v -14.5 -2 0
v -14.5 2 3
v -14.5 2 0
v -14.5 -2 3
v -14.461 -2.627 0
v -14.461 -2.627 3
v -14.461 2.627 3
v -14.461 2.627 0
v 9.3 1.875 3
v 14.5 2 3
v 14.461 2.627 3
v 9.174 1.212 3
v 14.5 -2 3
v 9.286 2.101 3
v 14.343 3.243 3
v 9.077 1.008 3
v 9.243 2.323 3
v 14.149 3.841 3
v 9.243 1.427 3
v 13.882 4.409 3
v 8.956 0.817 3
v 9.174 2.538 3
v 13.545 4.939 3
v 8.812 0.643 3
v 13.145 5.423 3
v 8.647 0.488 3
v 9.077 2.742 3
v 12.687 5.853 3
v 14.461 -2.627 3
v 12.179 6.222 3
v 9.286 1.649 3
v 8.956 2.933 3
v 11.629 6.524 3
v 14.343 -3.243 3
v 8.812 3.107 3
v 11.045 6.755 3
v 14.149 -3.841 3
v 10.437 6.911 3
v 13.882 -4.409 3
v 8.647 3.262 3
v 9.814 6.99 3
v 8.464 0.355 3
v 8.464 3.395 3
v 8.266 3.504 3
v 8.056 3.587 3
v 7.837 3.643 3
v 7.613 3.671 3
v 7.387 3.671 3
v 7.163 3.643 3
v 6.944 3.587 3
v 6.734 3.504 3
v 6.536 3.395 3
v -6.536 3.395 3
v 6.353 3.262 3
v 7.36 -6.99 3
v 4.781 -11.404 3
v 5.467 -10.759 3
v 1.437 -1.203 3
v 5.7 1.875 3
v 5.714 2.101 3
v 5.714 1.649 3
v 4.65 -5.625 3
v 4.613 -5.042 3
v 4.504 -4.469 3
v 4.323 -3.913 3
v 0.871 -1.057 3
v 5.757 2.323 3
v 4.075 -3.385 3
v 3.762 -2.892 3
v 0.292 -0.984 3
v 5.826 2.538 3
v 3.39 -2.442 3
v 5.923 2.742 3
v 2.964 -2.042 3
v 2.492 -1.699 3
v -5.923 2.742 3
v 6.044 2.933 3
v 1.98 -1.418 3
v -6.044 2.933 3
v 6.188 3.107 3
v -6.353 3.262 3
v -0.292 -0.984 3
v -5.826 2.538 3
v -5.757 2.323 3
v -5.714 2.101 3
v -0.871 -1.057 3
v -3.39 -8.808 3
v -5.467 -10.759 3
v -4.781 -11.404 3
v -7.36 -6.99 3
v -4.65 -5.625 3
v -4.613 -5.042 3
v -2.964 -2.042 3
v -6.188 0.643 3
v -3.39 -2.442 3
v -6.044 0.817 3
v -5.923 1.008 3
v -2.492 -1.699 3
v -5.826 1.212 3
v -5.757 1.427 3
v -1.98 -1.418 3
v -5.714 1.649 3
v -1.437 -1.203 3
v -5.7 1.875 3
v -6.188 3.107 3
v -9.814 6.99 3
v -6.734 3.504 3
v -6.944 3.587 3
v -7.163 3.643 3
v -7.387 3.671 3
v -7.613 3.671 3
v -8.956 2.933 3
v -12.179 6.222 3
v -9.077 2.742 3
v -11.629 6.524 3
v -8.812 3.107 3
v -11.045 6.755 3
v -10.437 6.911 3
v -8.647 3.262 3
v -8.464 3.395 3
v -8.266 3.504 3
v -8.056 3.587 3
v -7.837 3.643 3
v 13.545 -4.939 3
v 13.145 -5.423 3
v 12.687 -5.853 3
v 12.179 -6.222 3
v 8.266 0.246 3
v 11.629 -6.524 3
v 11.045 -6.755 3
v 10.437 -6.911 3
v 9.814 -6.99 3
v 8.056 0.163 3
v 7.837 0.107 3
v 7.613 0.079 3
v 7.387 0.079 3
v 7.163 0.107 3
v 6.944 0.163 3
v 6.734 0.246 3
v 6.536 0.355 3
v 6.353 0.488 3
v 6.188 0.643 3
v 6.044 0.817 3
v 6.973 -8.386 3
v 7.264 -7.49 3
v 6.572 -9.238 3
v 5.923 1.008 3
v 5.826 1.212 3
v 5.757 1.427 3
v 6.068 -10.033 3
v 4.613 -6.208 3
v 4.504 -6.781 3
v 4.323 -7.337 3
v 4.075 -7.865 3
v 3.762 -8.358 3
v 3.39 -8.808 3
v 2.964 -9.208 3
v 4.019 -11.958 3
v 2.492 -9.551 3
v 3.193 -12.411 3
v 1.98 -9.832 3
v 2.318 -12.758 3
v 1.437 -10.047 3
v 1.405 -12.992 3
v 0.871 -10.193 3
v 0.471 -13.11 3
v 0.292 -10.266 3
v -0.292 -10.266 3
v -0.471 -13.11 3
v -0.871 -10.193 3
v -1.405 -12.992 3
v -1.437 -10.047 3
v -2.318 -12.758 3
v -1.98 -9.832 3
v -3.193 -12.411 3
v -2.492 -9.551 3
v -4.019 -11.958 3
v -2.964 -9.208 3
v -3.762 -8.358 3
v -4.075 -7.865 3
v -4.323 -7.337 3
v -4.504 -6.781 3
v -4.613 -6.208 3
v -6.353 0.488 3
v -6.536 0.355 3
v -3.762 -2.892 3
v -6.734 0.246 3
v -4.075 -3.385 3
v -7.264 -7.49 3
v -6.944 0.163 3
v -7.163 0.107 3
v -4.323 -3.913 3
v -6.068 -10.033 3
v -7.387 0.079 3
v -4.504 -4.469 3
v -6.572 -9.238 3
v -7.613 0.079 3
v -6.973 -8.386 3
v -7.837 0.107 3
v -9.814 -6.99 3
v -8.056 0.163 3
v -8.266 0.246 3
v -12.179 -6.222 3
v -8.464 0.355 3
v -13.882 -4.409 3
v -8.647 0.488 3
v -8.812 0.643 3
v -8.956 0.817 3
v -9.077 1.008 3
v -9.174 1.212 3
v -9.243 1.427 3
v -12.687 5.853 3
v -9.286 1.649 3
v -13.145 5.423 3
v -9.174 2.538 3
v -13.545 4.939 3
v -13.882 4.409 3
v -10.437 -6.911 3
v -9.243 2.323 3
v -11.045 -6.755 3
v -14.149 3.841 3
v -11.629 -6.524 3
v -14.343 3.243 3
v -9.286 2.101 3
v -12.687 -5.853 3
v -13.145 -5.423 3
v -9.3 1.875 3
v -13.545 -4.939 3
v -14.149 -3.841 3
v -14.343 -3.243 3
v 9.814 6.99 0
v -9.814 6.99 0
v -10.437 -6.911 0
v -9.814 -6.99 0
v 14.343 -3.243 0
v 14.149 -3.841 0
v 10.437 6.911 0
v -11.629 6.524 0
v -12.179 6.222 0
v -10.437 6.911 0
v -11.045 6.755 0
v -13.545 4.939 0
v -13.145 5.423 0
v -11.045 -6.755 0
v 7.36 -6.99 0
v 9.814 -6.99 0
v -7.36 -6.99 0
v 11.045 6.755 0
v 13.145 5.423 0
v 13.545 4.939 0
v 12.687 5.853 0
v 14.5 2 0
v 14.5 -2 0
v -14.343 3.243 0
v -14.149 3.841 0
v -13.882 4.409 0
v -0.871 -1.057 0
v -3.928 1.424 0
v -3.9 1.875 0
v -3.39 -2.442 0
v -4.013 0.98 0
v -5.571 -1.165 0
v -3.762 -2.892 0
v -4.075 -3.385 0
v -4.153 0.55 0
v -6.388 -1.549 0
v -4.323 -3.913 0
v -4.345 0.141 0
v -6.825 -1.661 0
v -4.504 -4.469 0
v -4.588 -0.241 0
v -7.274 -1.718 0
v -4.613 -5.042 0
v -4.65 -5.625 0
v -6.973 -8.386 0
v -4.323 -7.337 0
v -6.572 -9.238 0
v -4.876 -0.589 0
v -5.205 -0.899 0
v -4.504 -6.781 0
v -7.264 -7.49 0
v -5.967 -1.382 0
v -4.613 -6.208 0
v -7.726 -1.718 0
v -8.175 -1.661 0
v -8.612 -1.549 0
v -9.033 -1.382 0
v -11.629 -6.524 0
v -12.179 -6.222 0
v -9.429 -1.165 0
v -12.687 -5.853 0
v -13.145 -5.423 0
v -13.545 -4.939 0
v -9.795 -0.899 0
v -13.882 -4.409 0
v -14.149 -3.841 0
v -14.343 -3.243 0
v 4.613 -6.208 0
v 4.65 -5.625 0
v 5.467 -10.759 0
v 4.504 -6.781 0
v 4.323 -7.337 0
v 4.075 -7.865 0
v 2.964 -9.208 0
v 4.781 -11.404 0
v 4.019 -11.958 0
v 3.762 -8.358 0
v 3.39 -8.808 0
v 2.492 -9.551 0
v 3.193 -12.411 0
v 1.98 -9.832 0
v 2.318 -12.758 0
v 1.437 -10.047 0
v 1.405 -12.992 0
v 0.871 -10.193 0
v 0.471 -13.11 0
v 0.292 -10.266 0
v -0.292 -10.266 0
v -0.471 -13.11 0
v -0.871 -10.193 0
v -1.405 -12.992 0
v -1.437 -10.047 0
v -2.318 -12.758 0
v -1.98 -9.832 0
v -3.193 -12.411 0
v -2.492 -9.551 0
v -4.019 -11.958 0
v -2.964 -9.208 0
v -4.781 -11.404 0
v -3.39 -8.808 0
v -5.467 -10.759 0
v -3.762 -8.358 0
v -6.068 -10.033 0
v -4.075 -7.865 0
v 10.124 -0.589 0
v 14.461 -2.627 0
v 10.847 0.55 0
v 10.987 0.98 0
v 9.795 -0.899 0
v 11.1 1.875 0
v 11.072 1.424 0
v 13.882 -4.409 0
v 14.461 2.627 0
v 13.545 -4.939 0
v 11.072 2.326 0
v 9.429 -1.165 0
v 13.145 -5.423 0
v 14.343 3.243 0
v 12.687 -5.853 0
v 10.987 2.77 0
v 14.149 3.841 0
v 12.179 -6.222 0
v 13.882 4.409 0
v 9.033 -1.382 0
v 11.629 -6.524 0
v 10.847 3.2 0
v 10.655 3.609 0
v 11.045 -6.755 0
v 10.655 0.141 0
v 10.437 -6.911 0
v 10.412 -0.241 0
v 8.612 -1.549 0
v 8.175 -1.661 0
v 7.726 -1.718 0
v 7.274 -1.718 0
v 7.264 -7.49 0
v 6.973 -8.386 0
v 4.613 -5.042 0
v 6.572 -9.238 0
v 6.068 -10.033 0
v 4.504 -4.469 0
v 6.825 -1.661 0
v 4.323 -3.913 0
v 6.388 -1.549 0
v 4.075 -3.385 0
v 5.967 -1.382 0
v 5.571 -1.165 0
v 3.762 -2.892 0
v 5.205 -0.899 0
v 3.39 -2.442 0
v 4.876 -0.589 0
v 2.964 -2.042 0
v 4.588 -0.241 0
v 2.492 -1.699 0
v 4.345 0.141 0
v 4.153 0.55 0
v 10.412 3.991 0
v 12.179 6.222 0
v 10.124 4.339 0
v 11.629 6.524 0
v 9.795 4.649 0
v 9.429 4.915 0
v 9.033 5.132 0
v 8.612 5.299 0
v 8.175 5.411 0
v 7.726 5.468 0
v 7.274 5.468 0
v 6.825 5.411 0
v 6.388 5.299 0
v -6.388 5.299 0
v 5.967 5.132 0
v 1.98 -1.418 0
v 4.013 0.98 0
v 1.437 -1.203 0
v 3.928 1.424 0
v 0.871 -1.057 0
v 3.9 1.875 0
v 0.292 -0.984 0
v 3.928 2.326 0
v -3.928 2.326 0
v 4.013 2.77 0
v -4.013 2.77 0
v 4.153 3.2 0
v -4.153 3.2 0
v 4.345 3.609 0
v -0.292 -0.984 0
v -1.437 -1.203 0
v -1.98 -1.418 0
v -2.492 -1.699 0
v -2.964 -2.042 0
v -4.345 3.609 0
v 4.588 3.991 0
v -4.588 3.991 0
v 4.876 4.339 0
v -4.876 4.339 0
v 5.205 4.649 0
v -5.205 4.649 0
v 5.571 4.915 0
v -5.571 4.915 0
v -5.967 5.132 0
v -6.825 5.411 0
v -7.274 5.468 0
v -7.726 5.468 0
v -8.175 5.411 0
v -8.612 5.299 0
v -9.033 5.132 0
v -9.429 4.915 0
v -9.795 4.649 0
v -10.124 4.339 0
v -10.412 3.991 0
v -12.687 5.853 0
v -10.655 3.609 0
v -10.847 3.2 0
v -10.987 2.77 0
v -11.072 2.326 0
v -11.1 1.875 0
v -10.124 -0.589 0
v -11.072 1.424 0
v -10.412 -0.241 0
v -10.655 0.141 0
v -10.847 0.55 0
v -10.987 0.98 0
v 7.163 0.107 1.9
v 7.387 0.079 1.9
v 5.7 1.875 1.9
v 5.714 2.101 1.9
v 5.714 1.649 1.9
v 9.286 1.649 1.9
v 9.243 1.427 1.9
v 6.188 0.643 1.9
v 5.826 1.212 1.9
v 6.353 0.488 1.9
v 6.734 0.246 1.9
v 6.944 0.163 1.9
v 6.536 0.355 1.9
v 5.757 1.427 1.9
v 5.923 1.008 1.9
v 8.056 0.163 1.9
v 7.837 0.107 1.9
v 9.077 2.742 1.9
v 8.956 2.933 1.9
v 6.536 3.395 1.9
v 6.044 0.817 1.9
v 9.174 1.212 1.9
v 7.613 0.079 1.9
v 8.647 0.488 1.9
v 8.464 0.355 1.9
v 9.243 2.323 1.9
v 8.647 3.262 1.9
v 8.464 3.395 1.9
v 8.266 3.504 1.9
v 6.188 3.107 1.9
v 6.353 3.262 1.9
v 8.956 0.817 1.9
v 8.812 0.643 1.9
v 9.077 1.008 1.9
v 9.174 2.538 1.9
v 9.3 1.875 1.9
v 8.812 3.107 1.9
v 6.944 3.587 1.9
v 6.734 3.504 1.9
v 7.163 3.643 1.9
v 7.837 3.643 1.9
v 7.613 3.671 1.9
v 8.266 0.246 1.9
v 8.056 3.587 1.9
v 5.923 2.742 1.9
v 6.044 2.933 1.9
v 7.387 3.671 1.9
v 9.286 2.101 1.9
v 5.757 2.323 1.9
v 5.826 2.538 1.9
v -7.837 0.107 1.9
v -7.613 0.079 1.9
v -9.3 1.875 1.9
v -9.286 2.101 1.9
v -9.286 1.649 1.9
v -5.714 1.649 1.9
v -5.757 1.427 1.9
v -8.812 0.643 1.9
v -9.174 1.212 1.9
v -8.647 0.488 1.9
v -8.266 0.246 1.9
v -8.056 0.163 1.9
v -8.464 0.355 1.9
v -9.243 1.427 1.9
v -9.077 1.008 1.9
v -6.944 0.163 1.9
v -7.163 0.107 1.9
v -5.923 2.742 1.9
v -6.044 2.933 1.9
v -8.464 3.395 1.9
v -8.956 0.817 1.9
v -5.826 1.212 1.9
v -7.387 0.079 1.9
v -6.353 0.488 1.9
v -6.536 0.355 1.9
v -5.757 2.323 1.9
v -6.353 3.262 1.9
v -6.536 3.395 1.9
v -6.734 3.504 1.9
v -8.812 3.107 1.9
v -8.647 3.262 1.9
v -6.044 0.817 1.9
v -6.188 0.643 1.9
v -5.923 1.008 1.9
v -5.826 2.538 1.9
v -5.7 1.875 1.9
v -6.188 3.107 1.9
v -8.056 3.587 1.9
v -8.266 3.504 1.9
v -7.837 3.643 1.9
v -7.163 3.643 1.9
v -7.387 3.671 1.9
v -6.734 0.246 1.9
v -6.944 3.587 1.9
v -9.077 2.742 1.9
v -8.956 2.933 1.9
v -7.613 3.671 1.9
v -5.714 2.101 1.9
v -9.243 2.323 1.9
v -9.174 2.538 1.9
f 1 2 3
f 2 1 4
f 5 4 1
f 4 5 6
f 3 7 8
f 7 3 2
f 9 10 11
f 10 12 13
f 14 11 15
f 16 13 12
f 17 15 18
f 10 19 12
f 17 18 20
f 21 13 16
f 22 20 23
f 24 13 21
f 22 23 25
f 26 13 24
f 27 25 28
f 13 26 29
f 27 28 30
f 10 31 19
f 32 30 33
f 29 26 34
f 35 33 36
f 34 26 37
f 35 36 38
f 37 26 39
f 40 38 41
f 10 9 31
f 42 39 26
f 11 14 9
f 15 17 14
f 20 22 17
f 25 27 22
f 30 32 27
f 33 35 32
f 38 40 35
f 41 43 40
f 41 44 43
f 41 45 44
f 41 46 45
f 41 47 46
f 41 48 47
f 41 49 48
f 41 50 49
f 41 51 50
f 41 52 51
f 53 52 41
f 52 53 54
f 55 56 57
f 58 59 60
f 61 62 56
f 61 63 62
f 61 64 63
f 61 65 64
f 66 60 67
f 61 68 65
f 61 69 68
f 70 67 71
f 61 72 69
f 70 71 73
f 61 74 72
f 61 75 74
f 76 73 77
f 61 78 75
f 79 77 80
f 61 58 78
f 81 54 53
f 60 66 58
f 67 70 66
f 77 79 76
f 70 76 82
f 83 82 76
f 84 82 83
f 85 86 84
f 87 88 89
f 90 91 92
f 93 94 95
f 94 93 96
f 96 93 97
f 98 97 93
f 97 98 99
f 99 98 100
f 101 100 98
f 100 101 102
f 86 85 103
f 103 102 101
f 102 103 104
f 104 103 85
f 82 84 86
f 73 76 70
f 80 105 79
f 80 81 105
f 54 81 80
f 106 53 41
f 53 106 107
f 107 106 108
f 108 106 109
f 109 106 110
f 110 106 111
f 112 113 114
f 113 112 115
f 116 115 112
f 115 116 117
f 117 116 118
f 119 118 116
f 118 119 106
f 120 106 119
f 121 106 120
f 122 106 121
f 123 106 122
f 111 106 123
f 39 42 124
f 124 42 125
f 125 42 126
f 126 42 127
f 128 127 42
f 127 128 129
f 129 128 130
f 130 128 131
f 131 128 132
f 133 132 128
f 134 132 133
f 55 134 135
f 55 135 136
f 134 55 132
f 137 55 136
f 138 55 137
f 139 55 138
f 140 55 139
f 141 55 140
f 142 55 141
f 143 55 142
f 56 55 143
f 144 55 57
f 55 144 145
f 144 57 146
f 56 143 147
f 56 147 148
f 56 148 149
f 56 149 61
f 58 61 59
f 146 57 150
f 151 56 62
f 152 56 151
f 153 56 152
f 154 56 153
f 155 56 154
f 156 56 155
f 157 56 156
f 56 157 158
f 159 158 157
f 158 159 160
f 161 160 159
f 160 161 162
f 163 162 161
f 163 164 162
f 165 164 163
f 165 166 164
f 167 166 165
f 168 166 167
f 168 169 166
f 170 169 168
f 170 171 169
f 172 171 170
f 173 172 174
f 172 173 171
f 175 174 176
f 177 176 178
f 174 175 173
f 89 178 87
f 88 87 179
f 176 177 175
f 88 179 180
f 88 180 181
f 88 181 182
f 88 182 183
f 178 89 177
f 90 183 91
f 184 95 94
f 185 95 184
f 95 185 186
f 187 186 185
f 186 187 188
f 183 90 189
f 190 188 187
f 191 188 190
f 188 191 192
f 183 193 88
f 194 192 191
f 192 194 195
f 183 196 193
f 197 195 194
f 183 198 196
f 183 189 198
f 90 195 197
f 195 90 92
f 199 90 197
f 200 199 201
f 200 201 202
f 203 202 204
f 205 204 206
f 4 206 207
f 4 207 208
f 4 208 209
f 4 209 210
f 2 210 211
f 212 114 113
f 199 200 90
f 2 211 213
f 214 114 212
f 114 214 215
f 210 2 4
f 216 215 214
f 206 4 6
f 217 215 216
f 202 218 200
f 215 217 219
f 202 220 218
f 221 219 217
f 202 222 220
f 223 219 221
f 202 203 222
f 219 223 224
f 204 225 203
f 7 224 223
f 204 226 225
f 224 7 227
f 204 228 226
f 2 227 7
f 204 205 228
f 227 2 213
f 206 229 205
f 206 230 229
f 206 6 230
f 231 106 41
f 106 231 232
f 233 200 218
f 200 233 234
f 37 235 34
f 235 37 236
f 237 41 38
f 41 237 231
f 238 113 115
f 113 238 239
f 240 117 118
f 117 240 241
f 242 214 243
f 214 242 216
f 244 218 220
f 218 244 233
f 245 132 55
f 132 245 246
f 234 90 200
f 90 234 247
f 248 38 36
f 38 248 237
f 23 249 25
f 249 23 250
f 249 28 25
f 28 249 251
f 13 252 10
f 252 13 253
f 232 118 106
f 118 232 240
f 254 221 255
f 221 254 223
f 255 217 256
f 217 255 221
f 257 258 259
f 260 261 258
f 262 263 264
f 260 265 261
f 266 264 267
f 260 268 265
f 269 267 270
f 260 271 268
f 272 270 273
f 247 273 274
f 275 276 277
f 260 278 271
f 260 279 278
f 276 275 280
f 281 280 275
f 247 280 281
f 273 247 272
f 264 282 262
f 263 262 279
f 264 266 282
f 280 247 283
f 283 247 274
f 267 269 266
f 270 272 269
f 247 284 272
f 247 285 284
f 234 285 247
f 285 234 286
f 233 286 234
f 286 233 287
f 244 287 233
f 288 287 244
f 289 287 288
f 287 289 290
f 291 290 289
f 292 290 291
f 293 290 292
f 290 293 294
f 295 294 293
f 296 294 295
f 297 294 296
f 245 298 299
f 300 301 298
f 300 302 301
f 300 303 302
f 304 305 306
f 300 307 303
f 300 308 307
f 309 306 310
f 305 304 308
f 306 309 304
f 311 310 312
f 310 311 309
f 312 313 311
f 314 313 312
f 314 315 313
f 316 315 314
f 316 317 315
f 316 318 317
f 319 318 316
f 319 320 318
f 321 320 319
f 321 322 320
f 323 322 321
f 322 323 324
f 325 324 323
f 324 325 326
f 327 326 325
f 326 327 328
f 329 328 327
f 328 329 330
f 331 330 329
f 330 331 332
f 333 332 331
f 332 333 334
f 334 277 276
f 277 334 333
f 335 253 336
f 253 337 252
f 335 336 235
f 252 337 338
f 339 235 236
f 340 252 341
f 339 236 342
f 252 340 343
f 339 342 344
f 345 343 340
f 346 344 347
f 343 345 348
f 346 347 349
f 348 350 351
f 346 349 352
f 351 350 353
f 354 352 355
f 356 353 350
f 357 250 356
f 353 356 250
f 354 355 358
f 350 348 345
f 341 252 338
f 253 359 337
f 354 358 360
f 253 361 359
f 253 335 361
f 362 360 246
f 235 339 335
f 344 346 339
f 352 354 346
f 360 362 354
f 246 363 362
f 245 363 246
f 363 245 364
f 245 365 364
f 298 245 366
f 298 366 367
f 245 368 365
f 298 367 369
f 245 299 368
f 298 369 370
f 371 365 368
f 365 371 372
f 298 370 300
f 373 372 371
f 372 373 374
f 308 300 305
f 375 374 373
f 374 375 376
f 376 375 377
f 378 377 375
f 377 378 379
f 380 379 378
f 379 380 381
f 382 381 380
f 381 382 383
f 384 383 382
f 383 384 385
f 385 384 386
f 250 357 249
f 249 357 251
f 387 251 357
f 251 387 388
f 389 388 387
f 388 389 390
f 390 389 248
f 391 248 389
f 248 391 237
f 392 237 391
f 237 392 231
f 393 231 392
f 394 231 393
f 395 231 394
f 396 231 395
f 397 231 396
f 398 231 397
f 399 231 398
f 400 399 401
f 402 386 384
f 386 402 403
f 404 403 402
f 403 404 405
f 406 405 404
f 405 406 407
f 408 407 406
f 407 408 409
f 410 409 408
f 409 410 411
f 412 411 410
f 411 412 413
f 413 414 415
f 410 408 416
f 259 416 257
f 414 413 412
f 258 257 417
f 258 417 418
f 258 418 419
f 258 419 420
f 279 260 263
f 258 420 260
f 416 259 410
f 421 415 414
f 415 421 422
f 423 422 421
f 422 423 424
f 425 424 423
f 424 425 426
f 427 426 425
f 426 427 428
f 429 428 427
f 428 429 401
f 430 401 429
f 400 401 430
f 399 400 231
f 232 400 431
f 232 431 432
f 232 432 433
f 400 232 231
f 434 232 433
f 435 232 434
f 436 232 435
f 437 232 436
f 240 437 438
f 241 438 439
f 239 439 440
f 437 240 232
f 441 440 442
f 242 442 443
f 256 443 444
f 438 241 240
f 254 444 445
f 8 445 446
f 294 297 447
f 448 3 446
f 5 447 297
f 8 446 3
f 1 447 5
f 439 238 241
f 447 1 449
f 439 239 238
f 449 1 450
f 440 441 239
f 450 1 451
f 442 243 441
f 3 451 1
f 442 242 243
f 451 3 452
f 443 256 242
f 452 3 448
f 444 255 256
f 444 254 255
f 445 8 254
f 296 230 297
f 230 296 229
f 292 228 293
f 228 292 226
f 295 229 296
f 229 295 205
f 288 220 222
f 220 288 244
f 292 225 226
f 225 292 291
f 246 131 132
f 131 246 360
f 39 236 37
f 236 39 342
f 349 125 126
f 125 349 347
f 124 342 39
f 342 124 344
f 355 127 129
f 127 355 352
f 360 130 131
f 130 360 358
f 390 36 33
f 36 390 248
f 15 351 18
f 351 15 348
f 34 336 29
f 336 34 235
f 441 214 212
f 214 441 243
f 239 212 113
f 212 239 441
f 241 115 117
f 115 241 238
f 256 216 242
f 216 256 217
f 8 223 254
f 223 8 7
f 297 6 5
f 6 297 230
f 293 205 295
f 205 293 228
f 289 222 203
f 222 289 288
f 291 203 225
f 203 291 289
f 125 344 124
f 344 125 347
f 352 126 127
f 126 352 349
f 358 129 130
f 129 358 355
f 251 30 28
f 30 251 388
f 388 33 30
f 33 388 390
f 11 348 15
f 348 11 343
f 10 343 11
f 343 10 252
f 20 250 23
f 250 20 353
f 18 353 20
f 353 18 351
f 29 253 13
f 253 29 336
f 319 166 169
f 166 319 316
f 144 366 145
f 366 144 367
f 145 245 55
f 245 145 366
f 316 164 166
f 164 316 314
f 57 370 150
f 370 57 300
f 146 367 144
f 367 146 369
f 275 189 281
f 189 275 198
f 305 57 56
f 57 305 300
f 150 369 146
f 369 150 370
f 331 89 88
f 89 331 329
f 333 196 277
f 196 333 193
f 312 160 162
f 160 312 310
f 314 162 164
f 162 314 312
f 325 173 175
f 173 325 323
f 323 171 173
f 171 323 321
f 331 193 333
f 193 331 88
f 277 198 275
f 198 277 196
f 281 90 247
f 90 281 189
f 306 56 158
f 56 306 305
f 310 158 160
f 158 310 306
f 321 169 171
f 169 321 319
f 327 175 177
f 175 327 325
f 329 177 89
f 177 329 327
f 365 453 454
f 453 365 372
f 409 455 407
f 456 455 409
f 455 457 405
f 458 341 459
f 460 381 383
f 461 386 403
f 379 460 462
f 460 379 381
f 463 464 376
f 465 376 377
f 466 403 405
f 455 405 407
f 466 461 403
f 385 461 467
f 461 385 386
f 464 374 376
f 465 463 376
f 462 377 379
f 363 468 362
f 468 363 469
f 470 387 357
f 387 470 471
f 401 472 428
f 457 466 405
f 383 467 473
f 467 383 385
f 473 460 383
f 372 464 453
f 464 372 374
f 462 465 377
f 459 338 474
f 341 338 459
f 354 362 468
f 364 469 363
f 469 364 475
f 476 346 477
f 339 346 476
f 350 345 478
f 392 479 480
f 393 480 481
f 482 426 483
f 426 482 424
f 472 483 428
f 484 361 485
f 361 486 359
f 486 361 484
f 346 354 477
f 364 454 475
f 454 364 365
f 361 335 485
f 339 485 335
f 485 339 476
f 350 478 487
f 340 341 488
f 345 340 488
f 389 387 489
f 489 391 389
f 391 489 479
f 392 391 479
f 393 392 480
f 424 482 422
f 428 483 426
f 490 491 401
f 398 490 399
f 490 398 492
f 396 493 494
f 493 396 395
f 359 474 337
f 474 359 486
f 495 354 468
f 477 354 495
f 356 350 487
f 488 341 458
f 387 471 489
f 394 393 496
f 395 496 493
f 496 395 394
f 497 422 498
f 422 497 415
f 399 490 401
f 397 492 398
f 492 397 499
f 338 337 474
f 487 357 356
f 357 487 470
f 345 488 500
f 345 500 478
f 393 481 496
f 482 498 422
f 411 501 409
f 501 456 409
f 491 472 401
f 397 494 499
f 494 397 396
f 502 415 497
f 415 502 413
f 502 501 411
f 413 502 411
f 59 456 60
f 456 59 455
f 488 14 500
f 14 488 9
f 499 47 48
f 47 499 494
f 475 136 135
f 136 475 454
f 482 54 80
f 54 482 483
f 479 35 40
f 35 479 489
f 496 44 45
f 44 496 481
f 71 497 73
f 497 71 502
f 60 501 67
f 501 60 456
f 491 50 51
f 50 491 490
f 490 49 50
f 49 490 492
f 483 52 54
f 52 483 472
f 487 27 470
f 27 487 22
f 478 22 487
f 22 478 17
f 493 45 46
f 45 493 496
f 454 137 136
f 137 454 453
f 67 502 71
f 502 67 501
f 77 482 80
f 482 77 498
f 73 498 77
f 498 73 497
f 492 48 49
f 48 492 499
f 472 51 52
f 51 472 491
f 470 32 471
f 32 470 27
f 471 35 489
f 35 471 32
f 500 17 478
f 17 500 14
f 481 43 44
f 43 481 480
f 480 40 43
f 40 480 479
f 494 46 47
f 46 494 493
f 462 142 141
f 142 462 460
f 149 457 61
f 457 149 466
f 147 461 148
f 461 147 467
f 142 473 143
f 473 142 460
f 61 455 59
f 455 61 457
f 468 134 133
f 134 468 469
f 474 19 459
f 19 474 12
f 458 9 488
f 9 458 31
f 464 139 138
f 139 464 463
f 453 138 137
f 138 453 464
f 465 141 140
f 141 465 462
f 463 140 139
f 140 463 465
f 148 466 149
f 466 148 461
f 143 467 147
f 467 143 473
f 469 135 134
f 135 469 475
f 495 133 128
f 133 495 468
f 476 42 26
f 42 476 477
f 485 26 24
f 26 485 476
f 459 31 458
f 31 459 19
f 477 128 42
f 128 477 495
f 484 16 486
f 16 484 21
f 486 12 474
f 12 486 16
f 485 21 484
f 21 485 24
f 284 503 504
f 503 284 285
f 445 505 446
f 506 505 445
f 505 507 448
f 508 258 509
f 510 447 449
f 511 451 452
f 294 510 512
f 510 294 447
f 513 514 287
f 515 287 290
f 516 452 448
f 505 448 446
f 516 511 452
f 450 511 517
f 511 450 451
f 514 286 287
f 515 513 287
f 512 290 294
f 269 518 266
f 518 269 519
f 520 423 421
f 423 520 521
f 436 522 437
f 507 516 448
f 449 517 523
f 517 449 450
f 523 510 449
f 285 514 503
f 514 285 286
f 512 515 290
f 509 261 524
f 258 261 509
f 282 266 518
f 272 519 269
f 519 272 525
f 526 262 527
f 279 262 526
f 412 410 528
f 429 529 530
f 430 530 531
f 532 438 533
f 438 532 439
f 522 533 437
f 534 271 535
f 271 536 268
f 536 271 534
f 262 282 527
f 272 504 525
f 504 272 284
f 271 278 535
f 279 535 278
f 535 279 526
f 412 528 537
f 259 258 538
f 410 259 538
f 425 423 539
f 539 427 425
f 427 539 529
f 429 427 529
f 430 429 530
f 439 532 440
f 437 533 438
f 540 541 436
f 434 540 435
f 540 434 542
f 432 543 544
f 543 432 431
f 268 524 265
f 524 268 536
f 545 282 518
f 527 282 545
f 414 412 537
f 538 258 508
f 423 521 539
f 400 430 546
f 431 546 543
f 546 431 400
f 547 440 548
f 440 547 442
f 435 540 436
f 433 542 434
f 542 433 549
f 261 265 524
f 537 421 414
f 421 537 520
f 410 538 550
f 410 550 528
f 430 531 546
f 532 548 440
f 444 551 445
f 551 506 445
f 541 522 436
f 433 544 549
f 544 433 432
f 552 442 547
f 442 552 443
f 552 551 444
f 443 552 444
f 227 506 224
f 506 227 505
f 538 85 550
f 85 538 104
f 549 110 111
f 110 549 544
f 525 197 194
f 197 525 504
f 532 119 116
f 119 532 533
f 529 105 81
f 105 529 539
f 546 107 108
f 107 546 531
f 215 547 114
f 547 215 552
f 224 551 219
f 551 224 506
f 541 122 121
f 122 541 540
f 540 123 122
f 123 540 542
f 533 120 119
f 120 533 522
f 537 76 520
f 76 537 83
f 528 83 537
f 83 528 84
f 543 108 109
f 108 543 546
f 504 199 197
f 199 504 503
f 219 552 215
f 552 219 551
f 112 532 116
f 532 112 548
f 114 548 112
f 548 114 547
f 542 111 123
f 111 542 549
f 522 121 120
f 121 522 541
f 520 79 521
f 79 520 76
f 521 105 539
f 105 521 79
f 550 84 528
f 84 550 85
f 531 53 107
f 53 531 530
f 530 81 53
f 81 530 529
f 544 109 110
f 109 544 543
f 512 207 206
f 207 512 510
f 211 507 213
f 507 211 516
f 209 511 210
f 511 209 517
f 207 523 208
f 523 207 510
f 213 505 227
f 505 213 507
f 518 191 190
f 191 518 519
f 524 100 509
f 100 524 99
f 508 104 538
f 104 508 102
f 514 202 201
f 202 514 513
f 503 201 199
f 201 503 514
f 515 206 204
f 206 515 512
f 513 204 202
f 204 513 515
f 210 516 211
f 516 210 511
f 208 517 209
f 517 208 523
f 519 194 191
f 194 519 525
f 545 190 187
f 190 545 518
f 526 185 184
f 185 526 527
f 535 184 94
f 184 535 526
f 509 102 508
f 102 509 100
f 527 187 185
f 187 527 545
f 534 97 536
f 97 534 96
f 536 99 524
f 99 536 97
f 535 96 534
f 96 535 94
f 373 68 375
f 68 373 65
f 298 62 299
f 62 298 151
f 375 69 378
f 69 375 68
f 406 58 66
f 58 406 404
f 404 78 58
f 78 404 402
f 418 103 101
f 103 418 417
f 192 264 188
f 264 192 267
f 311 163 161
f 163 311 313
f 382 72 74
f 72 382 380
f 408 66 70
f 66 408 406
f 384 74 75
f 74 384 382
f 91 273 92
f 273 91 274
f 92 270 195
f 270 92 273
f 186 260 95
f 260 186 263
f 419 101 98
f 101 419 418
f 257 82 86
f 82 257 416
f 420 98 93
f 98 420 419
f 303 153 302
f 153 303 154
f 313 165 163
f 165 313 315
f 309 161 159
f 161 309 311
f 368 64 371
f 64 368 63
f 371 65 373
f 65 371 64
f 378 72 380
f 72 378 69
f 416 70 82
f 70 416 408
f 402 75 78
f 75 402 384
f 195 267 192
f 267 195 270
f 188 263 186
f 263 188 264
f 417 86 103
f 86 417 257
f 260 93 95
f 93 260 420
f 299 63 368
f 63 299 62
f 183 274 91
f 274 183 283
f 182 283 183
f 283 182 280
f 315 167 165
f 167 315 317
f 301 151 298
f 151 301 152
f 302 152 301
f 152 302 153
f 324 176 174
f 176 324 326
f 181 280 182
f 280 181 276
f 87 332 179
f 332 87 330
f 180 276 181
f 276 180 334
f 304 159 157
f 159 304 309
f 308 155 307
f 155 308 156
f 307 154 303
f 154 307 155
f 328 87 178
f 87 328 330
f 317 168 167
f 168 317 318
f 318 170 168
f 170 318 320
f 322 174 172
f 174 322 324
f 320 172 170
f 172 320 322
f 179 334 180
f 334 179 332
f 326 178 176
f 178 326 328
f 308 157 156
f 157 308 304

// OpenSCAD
$fn = 50;


difference() {
	union() {
		hull() {
			translate(v = [-9.5000000000, 2.0000000000, 0]) {
				cylinder(h = 3, r = 5);
			}
			translate(v = [9.5000000000, 2.0000000000, 0]) {
				cylinder(h = 3, r = 5);
			}
			translate(v = [-9.5000000000, -2.0000000000, 0]) {
				cylinder(h = 3, r = 5);
			}
			translate(v = [9.5000000000, -2.0000000000, 0]) {
				cylinder(h = 3, r = 5);
			}
		}
		translate(v = [0, -5.6250000000, 0.0000000000]) {
			cylinder(h = 3, r = 7.5000000000);
		}
	}
	union() {
		translate(v = [7.5000000000, 1.8750000000, 0]) {
			rotate(a = [0, 180, 0]) {
				difference() {
					union() {
						#translate(v = [0, 0, -3.0000000000]) {
							cylinder(h = 3, r = 1.5000000000);
						}
						#translate(v = [0, 0, -1.9000000000]) {
							cylinder(h = 1.9000000000, r1 = 1.8000000000, r2 = 3.6000000000);
						}
						#translate(v = [0, 0, -3.0000000000]) {
							cylinder(h = 3, r = 1.8000000000);
						}
						#translate(v = [0, 0, -3.0000000000]) {
							cylinder(h = 3, r = 1.5000000000);
						}
					}
					union();
				}
			}
		}
		translate(v = [-7.5000000000, 1.8750000000, 0]) {
			rotate(a = [0, 180, 0]) {
				difference() {
					union() {
						#translate(v = [0, 0, -3.0000000000]) {
							cylinder(h = 3, r = 1.5000000000);
						}
						#translate(v = [0, 0, -1.9000000000]) {
							cylinder(h = 1.9000000000, r1 = 1.8000000000, r2 = 3.6000000000);
						}
						#translate(v = [0, 0, -3.0000000000]) {
							cylinder(h = 3, r = 1.8000000000);
						}
						#translate(v = [0, 0, -3.0000000000]) {
							cylinder(h = 3, r = 1.5000000000);
						}
					}
					union();
				}
			}
		}
		#translate(v = [0, -5.6250000000, 0]) {
			cylinder(h = 3, r = 4.6500000000);
		}
	}
}
